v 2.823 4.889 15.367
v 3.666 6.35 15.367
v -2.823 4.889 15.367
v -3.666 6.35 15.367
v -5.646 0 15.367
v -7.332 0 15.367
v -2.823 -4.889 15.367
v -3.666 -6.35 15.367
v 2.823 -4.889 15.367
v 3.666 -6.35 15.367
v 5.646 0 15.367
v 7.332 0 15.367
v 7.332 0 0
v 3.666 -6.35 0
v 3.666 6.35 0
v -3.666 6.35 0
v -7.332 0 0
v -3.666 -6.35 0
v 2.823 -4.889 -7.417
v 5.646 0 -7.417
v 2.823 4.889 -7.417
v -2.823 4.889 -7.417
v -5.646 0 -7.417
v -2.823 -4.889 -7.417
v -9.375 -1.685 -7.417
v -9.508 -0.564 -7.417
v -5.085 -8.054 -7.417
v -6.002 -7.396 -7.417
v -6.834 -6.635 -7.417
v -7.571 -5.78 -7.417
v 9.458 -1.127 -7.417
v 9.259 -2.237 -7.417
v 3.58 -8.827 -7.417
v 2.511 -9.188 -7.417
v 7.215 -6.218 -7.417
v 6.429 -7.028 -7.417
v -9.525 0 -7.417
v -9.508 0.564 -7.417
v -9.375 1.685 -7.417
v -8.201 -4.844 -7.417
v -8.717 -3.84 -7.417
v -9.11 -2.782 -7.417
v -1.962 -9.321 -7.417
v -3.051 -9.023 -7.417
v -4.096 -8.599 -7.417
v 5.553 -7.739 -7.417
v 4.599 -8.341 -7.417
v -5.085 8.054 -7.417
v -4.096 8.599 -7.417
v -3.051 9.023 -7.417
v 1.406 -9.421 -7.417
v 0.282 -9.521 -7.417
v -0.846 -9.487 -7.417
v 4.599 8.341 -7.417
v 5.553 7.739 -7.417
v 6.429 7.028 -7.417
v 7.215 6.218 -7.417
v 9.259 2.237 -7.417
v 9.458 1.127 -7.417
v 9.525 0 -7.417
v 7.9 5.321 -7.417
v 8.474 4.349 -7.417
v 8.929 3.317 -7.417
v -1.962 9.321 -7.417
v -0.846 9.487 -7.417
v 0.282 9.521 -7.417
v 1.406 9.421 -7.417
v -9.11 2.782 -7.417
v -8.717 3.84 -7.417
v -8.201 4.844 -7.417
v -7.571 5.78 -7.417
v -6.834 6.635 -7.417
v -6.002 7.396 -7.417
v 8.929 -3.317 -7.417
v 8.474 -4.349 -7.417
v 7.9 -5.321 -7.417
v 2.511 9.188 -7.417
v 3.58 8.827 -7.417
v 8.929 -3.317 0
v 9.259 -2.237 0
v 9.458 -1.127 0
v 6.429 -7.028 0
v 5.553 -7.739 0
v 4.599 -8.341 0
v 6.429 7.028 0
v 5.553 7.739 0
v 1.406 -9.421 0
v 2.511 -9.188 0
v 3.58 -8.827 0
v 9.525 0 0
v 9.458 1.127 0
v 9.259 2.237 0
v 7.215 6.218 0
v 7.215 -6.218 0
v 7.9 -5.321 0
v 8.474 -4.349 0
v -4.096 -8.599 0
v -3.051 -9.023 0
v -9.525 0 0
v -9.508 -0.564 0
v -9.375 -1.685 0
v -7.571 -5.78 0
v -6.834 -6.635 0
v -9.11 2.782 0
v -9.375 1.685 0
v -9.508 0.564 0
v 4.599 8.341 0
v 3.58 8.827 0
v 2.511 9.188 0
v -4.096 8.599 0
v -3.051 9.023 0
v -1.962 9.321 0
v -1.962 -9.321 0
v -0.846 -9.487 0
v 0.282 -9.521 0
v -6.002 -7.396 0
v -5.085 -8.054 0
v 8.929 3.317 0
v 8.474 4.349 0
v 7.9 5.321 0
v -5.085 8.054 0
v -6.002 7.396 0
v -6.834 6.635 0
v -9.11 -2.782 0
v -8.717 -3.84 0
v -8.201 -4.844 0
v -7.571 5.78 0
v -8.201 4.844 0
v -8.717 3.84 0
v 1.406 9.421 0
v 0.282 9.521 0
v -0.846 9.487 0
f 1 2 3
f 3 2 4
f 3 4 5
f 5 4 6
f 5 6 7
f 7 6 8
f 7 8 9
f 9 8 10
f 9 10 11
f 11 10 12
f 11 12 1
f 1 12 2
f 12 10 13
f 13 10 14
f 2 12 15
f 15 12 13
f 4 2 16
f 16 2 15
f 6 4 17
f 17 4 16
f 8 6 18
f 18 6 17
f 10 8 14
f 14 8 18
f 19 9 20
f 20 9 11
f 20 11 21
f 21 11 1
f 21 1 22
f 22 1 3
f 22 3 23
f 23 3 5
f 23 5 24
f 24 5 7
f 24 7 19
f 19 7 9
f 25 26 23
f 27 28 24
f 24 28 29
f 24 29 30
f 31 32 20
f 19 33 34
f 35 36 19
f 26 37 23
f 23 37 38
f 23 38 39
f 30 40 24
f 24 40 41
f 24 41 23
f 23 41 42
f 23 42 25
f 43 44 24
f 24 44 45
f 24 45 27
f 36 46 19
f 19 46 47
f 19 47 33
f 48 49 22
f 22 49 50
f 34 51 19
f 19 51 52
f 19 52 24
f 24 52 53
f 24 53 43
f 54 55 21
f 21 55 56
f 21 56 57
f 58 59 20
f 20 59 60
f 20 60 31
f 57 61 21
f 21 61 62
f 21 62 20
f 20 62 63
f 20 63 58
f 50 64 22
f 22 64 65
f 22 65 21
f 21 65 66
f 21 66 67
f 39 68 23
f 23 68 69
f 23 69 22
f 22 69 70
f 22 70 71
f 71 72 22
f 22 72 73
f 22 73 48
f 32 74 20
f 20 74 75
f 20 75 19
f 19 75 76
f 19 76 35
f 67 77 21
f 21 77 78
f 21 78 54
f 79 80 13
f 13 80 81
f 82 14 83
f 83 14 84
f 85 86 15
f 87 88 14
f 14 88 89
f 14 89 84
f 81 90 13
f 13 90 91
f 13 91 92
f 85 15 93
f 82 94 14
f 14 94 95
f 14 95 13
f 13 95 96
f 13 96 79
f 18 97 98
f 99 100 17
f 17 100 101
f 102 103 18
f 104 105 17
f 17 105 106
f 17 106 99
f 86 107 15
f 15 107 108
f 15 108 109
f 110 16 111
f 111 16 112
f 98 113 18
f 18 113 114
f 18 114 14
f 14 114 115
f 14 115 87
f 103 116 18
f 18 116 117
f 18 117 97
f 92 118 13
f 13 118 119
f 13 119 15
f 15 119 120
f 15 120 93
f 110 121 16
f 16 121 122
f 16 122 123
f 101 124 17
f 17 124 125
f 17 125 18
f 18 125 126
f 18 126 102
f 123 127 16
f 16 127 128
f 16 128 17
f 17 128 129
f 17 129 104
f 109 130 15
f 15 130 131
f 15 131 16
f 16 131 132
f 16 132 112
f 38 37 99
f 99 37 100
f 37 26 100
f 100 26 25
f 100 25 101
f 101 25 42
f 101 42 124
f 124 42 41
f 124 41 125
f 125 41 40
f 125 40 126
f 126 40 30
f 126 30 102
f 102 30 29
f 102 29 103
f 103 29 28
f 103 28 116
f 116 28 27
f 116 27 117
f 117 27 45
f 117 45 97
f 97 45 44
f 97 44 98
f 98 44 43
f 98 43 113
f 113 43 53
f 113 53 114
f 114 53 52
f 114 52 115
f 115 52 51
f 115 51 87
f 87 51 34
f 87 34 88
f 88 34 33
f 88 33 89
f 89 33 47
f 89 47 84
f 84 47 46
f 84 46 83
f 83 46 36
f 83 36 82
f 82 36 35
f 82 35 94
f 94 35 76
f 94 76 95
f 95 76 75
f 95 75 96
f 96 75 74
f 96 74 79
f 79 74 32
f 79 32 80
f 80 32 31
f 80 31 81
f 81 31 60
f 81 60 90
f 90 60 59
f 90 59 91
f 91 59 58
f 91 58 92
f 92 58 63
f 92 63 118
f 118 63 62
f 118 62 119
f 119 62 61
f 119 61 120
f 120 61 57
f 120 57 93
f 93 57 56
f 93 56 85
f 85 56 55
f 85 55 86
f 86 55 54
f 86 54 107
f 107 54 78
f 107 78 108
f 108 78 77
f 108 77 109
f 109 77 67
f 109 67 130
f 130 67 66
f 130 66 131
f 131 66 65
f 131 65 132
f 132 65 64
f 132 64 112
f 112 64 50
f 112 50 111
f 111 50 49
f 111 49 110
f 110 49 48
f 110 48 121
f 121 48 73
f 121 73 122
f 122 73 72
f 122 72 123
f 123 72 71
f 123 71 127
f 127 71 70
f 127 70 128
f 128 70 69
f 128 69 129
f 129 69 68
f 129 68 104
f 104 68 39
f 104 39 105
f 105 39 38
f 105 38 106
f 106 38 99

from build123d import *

# Parameters (mm, degrees)
BOSS_EXTRUDE1_DEPTH = 15.367
SKETCH2_R           = 9.525
BOSS_EXTRUDE2_DEPTH = 7.4168


with BuildPart() as part:
    # Sketch1 → Boss-Extrude1 (new body)
    with BuildSketch(Plane.XY):
        Polygon((7.332348419, 0), (3.666174209, 6.35), (-3.666174209, 6.35), (-7.332348419, 0), (-3.666174209, -6.35), (3.666174209, -6.35), align=None)
        Polygon((5.645908282, 0), (2.822954141, 4.8895), (-2.822954141, 4.8895), (-5.645908282, 0), (-2.822954141, -4.8895), (2.822954141, -4.8895), align=None, mode=Mode.SUBTRACT)
    extrude(amount=BOSS_EXTRUDE1_DEPTH)

    # Sketch2 → Boss-Extrude2 (add)
    with BuildSketch(Plane(origin=(0, 0, 0), x_dir=(-1, 0, 0), z_dir=(0, 0, -1))):
        Circle(SKETCH2_R)
        Polygon((5.645908282, 0), (2.822954141, 4.8895), (-2.822954141, 4.8895), (-5.645908282, 0), (-2.822954141, -4.8895), (2.822954141, -4.8895), align=None, mode=Mode.SUBTRACT)
    extrude(amount=BOSS_EXTRUDE2_DEPTH)


solid = part.part
